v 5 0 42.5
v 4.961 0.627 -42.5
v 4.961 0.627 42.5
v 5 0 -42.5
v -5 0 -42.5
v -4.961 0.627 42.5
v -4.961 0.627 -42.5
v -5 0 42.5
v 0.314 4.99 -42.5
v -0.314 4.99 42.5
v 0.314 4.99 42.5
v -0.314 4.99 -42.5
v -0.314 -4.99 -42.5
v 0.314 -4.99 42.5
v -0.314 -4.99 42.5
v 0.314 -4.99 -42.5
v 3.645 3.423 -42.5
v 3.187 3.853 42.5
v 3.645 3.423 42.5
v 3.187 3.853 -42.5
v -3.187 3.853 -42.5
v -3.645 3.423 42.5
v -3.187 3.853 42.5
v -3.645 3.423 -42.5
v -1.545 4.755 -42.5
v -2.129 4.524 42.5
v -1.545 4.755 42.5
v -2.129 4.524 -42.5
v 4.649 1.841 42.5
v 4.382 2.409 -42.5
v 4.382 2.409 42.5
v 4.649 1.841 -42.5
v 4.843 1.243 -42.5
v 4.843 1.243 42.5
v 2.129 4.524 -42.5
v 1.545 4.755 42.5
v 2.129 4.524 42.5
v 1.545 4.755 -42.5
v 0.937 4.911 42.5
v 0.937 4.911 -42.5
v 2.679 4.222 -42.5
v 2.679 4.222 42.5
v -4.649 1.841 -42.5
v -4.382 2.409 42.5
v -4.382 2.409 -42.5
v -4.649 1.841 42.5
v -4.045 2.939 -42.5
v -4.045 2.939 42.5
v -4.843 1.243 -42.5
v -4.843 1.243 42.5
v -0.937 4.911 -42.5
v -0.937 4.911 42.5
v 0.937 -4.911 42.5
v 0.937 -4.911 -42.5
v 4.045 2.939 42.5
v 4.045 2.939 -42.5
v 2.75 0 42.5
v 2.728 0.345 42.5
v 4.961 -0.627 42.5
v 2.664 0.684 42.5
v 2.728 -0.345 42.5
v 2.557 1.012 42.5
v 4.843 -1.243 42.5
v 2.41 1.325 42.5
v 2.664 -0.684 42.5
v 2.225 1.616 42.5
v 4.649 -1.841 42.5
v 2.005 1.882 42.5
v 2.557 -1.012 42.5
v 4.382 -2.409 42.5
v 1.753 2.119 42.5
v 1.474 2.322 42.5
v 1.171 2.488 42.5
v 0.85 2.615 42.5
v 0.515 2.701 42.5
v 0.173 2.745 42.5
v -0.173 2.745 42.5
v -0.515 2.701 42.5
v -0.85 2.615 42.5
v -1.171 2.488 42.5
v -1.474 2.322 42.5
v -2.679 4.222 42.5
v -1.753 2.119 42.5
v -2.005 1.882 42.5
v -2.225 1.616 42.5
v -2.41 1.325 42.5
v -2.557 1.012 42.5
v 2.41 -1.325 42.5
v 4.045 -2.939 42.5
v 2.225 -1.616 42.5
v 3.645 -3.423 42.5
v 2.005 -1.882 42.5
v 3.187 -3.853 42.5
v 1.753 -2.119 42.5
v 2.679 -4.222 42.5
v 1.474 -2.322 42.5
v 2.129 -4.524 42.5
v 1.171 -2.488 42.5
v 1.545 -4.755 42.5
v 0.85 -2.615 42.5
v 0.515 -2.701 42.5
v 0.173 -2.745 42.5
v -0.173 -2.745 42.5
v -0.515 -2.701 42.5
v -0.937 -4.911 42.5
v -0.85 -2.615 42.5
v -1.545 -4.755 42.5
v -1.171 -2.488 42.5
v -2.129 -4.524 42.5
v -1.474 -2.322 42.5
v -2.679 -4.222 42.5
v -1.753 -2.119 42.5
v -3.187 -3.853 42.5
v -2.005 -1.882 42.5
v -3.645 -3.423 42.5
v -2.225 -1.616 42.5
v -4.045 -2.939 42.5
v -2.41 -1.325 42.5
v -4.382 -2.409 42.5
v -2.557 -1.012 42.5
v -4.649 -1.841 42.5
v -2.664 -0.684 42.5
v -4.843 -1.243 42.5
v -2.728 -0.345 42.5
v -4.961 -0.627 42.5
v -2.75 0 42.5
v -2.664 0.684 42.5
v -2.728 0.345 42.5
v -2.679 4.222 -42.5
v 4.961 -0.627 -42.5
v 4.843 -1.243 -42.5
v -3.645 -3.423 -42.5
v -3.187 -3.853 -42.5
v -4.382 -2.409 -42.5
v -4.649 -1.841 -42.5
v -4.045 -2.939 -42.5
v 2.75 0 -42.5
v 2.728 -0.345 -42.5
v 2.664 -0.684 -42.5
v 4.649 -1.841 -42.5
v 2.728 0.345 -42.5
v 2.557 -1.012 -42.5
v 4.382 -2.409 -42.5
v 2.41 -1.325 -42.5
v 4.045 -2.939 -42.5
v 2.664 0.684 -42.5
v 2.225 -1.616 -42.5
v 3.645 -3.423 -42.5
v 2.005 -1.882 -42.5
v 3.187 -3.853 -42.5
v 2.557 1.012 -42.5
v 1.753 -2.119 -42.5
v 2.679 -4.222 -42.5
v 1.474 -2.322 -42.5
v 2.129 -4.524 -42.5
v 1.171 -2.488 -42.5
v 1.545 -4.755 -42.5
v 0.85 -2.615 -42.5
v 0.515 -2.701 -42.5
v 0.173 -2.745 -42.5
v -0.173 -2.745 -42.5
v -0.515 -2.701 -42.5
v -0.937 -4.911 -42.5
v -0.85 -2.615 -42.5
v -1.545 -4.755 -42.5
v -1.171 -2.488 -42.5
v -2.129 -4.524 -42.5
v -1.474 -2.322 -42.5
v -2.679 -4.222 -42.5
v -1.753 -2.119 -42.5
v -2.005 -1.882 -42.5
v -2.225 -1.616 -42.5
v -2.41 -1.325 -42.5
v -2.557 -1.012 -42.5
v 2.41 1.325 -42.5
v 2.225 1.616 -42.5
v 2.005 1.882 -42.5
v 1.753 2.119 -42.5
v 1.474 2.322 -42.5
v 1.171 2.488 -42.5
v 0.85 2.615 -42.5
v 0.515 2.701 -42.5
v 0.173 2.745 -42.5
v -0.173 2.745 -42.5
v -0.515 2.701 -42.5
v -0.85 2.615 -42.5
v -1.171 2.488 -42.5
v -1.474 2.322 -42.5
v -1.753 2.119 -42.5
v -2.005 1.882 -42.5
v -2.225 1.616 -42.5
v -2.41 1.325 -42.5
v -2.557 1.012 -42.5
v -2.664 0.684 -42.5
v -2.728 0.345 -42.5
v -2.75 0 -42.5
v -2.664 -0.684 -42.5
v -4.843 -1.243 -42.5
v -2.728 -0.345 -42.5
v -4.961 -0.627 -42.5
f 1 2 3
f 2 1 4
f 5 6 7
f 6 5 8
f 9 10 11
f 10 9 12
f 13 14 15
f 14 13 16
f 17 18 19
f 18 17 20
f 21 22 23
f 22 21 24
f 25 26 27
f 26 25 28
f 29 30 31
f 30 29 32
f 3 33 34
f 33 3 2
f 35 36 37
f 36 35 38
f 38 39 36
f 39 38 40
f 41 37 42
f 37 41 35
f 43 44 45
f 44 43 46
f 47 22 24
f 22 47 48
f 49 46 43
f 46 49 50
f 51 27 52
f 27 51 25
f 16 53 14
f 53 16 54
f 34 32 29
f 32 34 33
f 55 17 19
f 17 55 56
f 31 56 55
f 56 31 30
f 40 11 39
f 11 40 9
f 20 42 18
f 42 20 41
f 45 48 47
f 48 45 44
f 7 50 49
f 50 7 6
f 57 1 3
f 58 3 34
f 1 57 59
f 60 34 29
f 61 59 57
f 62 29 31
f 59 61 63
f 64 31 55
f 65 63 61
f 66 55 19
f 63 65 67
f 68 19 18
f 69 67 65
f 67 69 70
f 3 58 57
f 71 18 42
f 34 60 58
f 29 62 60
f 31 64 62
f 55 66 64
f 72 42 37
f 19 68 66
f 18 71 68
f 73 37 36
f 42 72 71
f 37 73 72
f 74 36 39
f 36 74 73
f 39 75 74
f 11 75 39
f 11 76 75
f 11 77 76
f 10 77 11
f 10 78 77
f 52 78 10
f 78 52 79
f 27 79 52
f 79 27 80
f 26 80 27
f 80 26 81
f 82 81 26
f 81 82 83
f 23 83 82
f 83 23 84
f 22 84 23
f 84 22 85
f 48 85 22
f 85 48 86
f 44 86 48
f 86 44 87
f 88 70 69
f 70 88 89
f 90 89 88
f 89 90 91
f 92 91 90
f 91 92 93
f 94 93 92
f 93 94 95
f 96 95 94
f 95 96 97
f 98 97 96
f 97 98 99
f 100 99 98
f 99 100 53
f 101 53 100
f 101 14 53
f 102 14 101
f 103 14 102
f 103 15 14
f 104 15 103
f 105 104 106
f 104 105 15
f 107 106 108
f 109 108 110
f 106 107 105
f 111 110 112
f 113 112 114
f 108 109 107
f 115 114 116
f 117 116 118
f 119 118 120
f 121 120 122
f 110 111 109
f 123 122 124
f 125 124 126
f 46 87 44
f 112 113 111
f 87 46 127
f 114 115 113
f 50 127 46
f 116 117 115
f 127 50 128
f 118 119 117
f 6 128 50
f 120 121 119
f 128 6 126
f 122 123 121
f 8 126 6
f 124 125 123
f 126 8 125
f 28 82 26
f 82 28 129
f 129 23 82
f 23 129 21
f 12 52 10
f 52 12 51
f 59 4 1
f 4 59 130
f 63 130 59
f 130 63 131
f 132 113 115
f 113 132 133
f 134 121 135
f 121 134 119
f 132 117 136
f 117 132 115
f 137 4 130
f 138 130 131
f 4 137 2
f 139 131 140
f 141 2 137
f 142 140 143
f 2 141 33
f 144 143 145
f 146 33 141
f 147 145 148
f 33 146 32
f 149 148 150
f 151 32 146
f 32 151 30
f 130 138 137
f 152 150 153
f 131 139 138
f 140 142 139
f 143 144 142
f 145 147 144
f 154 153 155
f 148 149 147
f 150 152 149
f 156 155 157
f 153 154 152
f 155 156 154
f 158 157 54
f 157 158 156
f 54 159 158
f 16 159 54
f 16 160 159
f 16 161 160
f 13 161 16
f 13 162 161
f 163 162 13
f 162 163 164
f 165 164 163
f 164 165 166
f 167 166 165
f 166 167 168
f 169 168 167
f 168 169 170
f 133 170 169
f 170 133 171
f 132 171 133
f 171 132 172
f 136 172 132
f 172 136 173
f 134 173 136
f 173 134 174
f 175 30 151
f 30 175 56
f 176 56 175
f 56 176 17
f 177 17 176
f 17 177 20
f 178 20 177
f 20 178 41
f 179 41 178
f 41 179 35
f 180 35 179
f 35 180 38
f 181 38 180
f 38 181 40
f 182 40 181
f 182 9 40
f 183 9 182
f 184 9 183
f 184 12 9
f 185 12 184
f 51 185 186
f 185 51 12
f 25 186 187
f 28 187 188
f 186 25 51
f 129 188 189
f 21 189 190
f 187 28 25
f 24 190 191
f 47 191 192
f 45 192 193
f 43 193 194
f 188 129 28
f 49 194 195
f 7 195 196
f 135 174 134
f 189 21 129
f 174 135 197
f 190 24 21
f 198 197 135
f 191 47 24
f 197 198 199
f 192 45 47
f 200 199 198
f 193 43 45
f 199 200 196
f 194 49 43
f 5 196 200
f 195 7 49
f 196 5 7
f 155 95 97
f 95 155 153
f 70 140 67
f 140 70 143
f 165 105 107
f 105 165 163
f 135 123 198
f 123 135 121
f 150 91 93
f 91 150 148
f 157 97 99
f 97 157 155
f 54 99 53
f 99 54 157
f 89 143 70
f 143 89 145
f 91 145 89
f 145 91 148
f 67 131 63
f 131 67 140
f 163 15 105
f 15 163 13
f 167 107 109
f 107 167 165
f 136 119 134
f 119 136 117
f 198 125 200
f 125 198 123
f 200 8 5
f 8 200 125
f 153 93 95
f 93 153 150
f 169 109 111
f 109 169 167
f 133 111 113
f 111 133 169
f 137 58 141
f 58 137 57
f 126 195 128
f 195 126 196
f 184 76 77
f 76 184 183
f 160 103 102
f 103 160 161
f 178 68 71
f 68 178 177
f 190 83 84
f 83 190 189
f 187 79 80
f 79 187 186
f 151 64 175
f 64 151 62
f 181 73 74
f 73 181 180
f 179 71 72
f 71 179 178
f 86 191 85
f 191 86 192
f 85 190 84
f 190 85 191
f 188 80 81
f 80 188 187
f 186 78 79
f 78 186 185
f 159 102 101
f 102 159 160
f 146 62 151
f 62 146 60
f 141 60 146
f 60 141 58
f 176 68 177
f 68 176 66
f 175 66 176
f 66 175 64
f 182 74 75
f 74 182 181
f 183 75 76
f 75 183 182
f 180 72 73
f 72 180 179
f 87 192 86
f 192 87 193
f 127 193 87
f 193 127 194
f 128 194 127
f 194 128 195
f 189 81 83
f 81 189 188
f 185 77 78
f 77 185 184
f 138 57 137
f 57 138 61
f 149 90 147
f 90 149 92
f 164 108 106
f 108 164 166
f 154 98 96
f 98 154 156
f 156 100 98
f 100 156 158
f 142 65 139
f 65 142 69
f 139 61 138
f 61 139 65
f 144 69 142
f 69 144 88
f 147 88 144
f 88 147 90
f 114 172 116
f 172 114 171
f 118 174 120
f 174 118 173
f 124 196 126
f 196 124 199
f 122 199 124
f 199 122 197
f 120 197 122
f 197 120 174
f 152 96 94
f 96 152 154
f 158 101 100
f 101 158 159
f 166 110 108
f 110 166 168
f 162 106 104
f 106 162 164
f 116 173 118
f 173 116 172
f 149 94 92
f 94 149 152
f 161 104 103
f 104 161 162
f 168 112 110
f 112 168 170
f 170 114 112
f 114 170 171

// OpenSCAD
$fn = 50;


difference() {
	union() {
		translate(v = [0, 0, -42.5000000000]) {
			cylinder(h = 85, r = 5.0000000000);
		}
	}
	union() {
		translate(v = [0, 0, -100.0000000000]) {
			cylinder(h = 200, r = 2.7500000000);
		}
	}
}
